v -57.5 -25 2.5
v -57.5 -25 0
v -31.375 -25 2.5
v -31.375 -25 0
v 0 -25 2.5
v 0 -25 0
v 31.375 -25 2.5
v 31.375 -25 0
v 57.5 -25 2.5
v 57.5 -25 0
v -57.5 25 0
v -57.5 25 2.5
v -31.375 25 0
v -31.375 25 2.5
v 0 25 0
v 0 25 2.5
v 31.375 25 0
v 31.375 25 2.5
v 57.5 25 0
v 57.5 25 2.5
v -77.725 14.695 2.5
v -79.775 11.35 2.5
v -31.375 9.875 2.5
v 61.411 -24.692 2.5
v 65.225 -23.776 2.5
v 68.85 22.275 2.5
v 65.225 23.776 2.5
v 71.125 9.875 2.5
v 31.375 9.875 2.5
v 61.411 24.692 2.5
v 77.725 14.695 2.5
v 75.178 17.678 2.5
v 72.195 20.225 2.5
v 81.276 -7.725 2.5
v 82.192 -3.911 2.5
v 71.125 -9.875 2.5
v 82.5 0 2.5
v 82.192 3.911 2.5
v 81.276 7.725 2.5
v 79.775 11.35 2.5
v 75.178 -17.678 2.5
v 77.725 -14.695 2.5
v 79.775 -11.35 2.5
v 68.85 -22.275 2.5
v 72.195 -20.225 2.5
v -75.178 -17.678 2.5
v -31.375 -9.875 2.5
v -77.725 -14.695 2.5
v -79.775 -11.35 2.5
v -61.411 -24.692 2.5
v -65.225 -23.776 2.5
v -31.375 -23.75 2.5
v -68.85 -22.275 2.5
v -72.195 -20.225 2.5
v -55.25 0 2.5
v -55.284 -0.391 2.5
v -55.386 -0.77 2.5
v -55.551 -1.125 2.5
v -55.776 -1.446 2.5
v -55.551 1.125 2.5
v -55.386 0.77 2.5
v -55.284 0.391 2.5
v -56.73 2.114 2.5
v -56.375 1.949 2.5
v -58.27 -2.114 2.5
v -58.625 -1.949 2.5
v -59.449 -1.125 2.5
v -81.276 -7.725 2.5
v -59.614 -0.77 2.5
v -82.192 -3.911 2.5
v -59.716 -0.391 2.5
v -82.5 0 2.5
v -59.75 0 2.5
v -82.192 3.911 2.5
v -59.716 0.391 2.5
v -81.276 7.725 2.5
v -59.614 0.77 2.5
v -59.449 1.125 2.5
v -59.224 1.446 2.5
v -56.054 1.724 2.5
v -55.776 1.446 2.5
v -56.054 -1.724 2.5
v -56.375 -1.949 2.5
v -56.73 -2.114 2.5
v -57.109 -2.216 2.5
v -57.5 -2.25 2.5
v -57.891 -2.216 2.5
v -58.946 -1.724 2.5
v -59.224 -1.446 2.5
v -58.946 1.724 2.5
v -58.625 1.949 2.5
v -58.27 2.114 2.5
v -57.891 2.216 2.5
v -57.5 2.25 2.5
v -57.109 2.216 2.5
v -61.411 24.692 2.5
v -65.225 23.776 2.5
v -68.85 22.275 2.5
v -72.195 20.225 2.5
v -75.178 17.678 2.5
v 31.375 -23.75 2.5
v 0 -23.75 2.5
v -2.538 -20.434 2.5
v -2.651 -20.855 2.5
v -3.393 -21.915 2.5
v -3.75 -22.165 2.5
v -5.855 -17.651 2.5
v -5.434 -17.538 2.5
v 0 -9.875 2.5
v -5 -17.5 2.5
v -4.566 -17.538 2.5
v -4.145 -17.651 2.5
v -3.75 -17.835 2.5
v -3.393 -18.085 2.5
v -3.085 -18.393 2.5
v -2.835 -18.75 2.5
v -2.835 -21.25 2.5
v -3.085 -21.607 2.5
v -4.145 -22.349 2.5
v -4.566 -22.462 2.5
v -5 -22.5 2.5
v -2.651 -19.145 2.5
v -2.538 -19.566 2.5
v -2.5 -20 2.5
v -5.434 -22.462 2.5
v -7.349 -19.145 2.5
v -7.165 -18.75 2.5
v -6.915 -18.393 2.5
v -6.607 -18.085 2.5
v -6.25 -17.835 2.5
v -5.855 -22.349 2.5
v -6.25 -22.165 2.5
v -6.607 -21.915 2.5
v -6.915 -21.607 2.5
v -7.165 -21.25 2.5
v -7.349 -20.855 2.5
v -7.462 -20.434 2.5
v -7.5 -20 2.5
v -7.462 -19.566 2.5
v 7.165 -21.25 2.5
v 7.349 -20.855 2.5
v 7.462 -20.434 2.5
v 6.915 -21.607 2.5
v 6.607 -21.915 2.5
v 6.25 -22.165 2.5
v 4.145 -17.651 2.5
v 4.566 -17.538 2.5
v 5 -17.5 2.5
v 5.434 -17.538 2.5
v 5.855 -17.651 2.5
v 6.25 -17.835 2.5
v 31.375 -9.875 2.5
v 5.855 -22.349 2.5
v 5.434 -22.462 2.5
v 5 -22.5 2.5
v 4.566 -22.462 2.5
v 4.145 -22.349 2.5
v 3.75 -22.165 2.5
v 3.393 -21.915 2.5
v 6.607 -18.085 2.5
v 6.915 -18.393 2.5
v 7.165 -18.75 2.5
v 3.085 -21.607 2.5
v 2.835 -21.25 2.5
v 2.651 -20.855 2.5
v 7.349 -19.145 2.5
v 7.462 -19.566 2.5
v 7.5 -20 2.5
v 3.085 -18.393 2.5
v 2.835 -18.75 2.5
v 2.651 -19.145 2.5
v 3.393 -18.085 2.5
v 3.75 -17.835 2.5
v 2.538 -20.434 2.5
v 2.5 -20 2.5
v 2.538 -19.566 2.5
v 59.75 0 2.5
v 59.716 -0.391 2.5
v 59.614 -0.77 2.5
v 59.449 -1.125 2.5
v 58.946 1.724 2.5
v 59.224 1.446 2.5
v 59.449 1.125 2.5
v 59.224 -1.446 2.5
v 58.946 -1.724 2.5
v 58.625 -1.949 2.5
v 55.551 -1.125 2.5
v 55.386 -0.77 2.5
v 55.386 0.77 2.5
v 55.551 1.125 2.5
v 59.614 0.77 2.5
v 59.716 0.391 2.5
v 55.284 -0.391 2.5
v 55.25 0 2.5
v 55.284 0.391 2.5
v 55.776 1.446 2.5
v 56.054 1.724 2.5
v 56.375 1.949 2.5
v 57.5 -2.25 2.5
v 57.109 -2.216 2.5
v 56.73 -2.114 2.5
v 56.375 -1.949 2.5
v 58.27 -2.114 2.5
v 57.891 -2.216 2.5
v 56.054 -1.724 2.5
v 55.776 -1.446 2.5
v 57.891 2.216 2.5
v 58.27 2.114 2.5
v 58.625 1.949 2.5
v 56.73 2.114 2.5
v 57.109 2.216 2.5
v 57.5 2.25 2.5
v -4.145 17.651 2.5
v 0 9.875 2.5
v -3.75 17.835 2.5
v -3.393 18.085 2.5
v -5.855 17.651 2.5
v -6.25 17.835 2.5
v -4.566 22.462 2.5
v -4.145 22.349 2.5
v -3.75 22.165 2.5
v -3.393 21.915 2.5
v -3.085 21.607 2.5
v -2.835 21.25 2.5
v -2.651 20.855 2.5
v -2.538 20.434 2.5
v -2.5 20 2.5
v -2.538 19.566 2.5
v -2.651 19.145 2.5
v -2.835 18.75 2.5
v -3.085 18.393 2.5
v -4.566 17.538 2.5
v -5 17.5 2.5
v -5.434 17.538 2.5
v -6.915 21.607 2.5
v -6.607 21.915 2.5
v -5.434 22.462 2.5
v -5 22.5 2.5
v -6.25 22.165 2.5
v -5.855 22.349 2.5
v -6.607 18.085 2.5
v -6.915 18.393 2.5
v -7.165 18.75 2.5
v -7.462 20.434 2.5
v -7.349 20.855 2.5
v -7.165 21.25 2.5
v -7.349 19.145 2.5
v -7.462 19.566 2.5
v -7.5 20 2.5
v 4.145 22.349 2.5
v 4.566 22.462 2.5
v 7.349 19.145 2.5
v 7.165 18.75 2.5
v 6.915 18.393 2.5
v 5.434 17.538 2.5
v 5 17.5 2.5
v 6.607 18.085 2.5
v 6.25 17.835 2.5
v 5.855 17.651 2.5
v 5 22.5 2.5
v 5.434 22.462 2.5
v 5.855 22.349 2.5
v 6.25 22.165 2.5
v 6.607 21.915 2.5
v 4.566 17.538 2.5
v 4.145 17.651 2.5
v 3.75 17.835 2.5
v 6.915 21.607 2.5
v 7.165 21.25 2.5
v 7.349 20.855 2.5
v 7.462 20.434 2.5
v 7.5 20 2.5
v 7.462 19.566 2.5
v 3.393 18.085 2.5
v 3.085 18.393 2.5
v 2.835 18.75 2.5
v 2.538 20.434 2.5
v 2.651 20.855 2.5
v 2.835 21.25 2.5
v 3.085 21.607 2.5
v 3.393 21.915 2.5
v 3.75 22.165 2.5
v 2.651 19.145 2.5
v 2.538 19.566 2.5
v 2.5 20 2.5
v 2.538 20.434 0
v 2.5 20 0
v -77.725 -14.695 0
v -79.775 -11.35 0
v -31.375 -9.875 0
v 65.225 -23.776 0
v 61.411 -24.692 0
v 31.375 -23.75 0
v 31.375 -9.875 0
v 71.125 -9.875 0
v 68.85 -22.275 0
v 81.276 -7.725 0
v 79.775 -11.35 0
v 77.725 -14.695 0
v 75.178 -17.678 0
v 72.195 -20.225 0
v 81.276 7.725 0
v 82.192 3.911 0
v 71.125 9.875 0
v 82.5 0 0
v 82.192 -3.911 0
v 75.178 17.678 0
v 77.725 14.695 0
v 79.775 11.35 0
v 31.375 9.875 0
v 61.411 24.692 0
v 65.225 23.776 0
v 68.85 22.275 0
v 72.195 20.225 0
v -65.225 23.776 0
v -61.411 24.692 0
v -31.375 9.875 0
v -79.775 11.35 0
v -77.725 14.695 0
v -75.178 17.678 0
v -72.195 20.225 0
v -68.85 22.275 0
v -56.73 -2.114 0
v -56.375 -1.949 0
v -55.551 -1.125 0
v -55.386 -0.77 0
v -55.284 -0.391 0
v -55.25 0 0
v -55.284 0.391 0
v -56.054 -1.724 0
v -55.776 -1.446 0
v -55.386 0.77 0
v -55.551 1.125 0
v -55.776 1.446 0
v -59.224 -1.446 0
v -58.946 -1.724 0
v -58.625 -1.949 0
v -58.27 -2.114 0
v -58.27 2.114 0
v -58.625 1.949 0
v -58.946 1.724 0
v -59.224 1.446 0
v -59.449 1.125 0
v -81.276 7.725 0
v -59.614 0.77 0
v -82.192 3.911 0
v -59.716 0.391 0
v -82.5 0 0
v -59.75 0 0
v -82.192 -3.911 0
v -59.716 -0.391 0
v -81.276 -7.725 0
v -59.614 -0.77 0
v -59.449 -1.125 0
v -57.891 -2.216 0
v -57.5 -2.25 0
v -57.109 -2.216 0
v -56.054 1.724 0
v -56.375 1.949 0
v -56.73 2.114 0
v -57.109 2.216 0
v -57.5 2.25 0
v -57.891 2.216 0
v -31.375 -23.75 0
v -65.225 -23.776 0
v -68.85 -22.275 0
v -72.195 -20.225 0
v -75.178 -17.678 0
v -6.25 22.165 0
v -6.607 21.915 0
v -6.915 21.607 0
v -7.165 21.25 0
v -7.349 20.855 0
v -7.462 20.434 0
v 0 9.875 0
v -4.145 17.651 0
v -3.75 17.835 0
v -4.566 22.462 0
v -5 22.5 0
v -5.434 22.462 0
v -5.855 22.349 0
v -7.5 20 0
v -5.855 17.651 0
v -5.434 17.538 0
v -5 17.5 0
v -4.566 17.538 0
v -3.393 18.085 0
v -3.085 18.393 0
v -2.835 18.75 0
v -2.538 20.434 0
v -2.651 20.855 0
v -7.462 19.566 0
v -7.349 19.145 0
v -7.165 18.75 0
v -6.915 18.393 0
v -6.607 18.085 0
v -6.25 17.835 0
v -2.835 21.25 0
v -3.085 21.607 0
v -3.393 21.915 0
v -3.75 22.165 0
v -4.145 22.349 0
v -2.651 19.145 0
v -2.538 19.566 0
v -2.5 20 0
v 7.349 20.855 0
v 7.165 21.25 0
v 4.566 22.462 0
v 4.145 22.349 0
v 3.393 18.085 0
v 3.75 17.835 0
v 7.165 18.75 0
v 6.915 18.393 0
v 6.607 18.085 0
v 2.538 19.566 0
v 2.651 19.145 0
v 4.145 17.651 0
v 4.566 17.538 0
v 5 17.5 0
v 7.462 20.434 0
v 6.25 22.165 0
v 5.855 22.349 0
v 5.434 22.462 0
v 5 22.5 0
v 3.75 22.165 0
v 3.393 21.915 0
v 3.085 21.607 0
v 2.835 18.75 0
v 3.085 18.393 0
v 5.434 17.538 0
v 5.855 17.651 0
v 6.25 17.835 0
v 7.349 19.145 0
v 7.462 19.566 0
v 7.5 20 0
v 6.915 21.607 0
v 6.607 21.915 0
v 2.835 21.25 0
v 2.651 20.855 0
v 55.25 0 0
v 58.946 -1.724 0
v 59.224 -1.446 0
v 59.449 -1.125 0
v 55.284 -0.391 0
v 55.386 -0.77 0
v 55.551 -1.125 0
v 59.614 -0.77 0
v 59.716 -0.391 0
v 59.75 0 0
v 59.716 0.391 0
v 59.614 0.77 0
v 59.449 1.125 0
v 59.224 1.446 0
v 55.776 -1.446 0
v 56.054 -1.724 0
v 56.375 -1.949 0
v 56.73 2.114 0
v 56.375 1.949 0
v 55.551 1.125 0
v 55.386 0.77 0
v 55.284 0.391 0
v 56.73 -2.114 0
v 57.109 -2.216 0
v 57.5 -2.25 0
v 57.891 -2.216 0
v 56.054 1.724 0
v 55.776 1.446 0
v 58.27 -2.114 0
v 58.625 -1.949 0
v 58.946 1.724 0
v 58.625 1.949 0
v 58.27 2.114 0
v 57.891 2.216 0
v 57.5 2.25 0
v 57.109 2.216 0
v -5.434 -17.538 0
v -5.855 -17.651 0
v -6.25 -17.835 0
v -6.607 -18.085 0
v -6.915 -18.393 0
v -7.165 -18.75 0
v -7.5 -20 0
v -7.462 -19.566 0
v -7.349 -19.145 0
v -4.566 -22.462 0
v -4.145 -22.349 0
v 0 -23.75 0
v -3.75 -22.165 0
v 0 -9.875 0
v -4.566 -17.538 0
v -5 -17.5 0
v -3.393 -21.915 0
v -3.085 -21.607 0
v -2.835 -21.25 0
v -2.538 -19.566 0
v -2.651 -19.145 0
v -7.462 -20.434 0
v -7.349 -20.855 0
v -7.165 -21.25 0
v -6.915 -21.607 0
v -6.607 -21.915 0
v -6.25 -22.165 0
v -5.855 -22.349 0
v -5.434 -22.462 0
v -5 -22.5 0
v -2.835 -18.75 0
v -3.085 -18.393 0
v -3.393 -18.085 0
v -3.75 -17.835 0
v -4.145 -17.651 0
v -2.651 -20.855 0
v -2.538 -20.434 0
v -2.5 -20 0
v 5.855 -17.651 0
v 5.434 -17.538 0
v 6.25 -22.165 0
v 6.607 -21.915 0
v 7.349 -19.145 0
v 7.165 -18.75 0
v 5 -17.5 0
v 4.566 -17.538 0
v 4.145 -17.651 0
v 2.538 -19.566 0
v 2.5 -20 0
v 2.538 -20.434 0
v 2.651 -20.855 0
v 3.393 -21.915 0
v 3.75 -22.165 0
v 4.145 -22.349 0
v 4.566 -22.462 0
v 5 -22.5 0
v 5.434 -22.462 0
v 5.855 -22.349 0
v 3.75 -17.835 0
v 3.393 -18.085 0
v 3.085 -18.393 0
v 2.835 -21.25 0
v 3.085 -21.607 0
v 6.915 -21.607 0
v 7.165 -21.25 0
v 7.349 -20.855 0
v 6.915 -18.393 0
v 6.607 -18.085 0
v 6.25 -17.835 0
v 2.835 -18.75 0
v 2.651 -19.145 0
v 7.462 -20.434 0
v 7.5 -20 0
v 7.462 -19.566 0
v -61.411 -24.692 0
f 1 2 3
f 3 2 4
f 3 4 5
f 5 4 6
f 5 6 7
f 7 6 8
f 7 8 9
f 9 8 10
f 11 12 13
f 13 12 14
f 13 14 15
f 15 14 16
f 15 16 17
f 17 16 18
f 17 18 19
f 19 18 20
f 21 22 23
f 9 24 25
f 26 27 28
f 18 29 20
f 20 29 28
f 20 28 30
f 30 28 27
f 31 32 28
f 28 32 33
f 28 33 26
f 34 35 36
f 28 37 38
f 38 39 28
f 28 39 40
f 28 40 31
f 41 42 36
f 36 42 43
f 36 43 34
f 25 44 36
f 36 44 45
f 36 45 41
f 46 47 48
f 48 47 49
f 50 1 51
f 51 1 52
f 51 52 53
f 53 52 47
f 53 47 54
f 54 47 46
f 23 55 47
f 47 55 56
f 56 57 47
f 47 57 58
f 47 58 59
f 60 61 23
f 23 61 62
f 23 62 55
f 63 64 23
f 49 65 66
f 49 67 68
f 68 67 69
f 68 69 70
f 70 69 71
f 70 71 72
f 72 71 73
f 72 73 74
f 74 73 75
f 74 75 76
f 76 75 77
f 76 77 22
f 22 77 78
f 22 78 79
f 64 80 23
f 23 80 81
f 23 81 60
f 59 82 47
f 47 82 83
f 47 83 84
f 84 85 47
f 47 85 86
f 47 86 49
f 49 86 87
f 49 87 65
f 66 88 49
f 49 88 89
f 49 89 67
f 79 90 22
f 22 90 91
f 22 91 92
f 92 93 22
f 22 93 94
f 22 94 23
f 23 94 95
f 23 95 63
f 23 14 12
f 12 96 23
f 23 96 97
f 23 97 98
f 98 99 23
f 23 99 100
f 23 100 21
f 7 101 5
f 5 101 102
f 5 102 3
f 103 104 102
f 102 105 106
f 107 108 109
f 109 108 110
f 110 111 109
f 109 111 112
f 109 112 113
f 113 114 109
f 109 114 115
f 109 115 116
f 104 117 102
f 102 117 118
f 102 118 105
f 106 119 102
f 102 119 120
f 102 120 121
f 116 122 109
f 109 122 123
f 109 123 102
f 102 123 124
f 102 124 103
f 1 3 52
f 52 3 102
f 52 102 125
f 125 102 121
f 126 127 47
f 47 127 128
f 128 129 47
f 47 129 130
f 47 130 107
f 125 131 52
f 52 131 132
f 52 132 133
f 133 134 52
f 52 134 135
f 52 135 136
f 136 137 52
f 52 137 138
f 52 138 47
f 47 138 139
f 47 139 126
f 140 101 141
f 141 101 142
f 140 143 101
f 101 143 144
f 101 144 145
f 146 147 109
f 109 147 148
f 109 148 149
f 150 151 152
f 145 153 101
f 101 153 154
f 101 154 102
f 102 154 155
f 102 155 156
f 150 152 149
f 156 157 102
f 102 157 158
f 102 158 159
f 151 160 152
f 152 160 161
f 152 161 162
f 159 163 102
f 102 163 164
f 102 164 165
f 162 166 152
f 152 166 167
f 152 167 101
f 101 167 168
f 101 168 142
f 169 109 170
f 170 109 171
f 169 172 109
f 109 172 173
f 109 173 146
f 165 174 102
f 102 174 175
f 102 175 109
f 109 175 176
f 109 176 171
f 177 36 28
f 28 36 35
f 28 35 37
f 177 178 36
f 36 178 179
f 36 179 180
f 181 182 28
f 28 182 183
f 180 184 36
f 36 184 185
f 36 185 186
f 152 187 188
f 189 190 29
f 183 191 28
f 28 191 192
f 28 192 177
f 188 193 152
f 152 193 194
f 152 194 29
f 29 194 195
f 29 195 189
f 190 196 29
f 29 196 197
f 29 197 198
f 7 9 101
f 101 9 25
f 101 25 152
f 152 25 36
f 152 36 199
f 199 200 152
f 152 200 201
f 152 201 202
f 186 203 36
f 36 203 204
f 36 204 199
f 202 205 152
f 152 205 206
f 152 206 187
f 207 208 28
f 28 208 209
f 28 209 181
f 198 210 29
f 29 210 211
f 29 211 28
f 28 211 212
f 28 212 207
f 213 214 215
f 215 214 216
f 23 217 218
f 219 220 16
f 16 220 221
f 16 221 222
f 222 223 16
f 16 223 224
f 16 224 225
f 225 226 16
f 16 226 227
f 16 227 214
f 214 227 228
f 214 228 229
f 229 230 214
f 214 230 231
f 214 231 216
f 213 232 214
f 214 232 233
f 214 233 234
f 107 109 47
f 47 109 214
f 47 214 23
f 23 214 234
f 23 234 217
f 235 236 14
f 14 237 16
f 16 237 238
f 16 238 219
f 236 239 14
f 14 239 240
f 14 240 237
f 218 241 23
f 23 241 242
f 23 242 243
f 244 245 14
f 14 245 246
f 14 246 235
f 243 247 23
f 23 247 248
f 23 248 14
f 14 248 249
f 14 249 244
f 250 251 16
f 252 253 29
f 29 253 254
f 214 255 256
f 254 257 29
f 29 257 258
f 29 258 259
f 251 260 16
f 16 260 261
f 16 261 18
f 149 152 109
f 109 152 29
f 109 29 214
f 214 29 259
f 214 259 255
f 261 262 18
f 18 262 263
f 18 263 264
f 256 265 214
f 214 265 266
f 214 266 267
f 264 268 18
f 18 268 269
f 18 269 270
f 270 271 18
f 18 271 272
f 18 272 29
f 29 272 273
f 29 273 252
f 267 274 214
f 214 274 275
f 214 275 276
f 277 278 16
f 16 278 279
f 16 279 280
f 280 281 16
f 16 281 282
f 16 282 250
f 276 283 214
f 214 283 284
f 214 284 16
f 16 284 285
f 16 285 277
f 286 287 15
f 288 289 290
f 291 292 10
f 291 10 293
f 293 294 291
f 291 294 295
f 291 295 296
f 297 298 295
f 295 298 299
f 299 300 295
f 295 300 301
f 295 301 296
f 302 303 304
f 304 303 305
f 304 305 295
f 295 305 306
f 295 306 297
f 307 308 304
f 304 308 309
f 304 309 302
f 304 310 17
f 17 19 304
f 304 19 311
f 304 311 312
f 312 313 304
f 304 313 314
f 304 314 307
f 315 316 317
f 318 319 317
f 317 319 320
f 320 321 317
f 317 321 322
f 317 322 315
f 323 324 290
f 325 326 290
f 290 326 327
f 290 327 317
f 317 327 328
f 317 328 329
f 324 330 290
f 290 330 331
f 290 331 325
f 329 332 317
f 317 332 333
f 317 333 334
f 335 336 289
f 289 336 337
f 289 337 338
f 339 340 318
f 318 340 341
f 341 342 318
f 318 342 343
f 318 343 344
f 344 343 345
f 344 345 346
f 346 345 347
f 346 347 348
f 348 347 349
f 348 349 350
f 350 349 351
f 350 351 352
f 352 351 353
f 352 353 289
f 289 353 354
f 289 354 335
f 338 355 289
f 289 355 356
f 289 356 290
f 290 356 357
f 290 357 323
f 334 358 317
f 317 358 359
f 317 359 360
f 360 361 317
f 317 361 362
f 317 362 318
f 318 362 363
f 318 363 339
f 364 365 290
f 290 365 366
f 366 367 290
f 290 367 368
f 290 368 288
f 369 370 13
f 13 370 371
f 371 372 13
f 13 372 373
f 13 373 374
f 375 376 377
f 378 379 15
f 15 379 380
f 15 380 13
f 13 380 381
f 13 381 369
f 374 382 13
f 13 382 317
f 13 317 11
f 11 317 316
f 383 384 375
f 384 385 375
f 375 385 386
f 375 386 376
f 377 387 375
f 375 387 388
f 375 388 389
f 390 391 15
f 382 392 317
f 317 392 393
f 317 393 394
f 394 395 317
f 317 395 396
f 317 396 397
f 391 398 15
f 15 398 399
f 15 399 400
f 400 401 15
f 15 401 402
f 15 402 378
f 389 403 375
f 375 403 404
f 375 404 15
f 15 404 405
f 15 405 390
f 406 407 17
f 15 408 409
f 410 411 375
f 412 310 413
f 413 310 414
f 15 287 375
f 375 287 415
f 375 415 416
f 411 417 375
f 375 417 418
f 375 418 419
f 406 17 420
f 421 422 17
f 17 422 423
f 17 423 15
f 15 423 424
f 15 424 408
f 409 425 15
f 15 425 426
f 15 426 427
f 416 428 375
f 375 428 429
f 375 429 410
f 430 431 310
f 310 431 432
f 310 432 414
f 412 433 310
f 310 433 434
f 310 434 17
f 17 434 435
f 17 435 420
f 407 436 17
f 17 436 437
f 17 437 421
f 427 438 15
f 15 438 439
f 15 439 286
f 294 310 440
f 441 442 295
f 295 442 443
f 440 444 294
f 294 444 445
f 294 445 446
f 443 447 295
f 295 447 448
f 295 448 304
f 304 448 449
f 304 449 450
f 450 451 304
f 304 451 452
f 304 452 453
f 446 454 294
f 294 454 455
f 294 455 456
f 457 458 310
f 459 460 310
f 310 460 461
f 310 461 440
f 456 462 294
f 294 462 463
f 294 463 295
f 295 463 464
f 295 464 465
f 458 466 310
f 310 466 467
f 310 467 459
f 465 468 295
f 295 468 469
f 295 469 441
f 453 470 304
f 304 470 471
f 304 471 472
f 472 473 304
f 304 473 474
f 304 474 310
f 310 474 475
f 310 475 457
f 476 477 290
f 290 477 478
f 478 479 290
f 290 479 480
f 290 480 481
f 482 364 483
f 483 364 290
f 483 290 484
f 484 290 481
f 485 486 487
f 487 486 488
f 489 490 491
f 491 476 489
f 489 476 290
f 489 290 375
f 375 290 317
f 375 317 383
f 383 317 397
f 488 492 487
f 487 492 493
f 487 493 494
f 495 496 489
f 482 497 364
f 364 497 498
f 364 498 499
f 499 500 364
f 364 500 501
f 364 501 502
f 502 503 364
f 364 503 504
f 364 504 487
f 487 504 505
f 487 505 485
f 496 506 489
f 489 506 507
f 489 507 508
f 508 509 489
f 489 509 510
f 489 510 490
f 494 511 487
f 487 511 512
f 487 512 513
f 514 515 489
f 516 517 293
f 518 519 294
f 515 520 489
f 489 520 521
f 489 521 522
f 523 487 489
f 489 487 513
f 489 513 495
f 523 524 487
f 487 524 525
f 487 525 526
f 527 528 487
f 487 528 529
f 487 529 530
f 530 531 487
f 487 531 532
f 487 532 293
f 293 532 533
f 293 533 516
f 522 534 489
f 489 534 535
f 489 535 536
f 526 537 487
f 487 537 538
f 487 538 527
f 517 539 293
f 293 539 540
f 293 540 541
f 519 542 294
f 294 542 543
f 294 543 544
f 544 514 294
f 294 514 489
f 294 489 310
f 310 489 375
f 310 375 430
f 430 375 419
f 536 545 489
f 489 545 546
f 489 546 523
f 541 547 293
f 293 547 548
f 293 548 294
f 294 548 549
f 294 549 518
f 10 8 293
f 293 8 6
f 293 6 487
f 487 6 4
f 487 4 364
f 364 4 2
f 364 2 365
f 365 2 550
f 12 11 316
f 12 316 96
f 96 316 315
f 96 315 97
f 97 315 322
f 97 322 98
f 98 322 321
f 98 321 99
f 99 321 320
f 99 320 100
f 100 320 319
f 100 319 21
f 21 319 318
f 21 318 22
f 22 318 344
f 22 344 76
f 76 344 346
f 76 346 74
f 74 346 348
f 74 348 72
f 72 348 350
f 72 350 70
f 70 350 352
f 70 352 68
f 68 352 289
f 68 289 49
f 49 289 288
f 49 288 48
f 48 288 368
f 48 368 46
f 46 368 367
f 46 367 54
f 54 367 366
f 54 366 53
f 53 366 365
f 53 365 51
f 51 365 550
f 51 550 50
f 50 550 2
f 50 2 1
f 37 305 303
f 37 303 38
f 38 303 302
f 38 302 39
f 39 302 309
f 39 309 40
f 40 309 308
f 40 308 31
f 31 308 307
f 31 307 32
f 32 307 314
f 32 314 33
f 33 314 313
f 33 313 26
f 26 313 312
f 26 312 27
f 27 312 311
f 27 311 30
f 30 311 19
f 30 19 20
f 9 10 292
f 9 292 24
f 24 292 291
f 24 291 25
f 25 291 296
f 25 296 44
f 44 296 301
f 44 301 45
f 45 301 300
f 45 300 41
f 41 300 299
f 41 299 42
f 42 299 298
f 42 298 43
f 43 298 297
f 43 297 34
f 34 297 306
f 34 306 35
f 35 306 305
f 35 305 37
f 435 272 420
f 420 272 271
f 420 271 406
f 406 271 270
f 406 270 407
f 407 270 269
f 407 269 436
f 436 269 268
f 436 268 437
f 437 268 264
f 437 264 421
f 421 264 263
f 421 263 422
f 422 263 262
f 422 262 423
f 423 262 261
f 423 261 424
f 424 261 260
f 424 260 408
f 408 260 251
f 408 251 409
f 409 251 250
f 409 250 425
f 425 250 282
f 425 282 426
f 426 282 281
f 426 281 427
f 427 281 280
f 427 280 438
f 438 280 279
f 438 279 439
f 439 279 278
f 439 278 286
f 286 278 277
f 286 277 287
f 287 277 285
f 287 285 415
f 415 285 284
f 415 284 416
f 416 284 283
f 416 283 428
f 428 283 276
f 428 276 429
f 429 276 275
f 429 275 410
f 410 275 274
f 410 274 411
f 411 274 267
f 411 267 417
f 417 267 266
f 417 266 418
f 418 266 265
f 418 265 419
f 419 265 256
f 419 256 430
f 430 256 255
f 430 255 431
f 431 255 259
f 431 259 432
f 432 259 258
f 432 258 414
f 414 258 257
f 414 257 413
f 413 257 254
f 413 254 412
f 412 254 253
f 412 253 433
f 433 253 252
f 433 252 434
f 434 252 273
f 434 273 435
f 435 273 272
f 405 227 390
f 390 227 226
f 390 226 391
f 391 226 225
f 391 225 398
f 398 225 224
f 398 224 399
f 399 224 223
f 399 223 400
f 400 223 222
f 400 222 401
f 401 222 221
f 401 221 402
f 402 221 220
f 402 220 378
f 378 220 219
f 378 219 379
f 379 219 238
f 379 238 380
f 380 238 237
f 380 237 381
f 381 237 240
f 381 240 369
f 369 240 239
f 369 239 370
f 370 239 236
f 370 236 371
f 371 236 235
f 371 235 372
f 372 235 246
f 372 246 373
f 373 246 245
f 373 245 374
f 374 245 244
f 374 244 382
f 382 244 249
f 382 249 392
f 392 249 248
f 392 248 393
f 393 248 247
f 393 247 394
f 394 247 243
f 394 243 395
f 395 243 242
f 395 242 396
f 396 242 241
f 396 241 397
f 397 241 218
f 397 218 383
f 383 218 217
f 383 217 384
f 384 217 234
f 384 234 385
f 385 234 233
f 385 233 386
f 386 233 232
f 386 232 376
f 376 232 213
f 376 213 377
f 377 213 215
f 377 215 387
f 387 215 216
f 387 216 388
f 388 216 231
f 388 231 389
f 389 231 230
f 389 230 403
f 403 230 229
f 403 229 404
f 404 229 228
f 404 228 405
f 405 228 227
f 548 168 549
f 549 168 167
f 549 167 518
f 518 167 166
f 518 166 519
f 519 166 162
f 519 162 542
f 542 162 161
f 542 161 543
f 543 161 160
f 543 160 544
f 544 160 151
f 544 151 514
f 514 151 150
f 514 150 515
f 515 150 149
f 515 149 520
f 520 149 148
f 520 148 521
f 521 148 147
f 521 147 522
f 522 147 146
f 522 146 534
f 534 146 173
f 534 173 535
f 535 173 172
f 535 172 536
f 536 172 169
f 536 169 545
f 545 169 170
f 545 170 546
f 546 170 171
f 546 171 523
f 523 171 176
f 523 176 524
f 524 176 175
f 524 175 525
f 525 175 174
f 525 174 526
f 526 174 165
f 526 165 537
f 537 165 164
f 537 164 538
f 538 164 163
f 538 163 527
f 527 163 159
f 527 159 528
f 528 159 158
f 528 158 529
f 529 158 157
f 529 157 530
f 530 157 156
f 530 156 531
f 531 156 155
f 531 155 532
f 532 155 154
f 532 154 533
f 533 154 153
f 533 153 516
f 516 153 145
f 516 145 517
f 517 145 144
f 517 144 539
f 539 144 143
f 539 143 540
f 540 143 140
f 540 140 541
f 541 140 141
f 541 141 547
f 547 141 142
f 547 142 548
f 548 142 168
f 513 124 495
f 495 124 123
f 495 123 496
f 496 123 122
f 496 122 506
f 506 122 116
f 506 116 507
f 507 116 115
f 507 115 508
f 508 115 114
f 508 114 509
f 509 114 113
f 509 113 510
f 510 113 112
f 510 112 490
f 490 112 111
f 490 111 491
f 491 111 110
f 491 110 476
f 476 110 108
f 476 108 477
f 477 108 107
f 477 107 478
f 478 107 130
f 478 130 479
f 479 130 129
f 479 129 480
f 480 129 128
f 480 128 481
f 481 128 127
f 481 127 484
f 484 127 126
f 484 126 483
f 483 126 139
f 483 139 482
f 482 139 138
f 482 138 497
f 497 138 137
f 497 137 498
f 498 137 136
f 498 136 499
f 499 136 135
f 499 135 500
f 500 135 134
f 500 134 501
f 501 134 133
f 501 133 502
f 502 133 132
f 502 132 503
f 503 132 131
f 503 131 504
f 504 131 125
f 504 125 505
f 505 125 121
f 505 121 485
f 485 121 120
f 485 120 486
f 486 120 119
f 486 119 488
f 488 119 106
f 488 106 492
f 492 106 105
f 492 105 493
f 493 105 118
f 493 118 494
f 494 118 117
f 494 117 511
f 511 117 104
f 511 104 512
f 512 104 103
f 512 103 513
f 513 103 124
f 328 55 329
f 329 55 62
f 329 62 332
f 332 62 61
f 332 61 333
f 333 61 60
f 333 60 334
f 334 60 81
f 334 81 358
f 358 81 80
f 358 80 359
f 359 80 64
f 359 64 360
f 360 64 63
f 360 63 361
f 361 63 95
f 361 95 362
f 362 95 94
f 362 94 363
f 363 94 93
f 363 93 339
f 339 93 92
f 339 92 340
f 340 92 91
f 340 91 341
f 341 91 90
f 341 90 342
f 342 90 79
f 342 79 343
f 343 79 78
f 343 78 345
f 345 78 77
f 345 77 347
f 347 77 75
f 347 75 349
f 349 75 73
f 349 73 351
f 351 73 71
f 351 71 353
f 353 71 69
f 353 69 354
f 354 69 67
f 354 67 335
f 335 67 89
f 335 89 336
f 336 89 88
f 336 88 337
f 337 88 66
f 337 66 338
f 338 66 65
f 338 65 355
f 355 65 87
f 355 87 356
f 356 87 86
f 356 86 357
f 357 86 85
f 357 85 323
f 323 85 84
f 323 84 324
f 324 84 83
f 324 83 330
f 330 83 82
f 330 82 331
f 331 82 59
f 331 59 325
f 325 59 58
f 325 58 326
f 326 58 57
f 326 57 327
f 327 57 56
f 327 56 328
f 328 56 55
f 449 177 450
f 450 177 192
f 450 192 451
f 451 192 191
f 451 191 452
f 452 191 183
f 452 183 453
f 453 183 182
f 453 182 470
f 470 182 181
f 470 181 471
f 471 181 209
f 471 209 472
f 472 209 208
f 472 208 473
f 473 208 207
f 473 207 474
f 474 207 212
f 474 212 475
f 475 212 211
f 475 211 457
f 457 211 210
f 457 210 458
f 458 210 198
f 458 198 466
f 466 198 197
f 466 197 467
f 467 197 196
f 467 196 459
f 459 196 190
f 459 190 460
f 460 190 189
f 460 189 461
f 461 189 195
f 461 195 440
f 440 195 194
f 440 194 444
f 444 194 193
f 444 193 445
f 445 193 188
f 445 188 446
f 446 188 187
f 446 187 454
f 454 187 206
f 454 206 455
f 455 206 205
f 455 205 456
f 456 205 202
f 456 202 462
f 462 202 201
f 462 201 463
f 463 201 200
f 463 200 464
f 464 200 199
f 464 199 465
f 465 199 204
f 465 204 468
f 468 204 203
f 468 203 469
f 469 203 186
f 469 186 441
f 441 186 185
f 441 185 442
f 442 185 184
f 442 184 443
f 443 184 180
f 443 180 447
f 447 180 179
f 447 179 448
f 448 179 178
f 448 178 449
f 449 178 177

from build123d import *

# Parameters (mm, degrees)
SKETCH1_W           = 165
SKETCH1_H           = 50
BOSS_EXTRUDE1_DEPTH = 2.5
FILLET1_R           = 25
SKETCH2_R           = 2.5
CUT_EXTRUDE1_DEPTH  = 2.5
SKETCH4_R           = 2.25
CUT_EXTRUDE2_DEPTH  = 10


with BuildPart() as part:
    # Sketch1 → Boss-Extrude1 (new body)
    with BuildSketch(Plane.XY):
        Rectangle(SKETCH1_W, SKETCH1_H)
    extrude(amount=BOSS_EXTRUDE1_DEPTH)

    # Fillet1
    fillet1_edges = [part.edges().sort_by_distance(p)[0] for p in [
        (-82.5, -25, 1.25),
        (-82.5, 25, 1.25),
        (82.5, -25, 1.25),
        (82.5, 25, 1.25),
    ]]
    fillet(fillet1_edges, radius=FILLET1_R - 0.0001)  # a hair under: the kernel refuses the full size

    # Sketch2 → Cut-Extrude1 (cut)
    with BuildSketch(Plane.XY.offset(2.5)):
        with Locations((-5, 20)):
            Circle(SKETCH2_R)
        with Locations((5, 20)):
            Circle(SKETCH2_R)
    cut_extrude1 = extrude(amount=-CUT_EXTRUDE1_DEPTH, mode=Mode.SUBTRACT)

    # Mirror1: Cut-Extrude1 across plane
    add(cut_extrude1.mirror(Plane.ZX), mode=Mode.SUBTRACT)

    # Sketch4 → Cut-Extrude2 (cut)
    with BuildSketch(Plane.XY.offset(2.5)):
        with Locations((-57.5, 0)):
            Circle(SKETCH4_R)
    cut_extrude2 = extrude(amount=-CUT_EXTRUDE2_DEPTH, mode=Mode.SUBTRACT)

    # Mirror2: Cut-Extrude2 across plane
    add(cut_extrude2.mirror(Plane(origin=(0, 0, 0), x_dir=(0, 0, 1), z_dir=(1, 0, 0))), mode=Mode.SUBTRACT)


solid = part.part
